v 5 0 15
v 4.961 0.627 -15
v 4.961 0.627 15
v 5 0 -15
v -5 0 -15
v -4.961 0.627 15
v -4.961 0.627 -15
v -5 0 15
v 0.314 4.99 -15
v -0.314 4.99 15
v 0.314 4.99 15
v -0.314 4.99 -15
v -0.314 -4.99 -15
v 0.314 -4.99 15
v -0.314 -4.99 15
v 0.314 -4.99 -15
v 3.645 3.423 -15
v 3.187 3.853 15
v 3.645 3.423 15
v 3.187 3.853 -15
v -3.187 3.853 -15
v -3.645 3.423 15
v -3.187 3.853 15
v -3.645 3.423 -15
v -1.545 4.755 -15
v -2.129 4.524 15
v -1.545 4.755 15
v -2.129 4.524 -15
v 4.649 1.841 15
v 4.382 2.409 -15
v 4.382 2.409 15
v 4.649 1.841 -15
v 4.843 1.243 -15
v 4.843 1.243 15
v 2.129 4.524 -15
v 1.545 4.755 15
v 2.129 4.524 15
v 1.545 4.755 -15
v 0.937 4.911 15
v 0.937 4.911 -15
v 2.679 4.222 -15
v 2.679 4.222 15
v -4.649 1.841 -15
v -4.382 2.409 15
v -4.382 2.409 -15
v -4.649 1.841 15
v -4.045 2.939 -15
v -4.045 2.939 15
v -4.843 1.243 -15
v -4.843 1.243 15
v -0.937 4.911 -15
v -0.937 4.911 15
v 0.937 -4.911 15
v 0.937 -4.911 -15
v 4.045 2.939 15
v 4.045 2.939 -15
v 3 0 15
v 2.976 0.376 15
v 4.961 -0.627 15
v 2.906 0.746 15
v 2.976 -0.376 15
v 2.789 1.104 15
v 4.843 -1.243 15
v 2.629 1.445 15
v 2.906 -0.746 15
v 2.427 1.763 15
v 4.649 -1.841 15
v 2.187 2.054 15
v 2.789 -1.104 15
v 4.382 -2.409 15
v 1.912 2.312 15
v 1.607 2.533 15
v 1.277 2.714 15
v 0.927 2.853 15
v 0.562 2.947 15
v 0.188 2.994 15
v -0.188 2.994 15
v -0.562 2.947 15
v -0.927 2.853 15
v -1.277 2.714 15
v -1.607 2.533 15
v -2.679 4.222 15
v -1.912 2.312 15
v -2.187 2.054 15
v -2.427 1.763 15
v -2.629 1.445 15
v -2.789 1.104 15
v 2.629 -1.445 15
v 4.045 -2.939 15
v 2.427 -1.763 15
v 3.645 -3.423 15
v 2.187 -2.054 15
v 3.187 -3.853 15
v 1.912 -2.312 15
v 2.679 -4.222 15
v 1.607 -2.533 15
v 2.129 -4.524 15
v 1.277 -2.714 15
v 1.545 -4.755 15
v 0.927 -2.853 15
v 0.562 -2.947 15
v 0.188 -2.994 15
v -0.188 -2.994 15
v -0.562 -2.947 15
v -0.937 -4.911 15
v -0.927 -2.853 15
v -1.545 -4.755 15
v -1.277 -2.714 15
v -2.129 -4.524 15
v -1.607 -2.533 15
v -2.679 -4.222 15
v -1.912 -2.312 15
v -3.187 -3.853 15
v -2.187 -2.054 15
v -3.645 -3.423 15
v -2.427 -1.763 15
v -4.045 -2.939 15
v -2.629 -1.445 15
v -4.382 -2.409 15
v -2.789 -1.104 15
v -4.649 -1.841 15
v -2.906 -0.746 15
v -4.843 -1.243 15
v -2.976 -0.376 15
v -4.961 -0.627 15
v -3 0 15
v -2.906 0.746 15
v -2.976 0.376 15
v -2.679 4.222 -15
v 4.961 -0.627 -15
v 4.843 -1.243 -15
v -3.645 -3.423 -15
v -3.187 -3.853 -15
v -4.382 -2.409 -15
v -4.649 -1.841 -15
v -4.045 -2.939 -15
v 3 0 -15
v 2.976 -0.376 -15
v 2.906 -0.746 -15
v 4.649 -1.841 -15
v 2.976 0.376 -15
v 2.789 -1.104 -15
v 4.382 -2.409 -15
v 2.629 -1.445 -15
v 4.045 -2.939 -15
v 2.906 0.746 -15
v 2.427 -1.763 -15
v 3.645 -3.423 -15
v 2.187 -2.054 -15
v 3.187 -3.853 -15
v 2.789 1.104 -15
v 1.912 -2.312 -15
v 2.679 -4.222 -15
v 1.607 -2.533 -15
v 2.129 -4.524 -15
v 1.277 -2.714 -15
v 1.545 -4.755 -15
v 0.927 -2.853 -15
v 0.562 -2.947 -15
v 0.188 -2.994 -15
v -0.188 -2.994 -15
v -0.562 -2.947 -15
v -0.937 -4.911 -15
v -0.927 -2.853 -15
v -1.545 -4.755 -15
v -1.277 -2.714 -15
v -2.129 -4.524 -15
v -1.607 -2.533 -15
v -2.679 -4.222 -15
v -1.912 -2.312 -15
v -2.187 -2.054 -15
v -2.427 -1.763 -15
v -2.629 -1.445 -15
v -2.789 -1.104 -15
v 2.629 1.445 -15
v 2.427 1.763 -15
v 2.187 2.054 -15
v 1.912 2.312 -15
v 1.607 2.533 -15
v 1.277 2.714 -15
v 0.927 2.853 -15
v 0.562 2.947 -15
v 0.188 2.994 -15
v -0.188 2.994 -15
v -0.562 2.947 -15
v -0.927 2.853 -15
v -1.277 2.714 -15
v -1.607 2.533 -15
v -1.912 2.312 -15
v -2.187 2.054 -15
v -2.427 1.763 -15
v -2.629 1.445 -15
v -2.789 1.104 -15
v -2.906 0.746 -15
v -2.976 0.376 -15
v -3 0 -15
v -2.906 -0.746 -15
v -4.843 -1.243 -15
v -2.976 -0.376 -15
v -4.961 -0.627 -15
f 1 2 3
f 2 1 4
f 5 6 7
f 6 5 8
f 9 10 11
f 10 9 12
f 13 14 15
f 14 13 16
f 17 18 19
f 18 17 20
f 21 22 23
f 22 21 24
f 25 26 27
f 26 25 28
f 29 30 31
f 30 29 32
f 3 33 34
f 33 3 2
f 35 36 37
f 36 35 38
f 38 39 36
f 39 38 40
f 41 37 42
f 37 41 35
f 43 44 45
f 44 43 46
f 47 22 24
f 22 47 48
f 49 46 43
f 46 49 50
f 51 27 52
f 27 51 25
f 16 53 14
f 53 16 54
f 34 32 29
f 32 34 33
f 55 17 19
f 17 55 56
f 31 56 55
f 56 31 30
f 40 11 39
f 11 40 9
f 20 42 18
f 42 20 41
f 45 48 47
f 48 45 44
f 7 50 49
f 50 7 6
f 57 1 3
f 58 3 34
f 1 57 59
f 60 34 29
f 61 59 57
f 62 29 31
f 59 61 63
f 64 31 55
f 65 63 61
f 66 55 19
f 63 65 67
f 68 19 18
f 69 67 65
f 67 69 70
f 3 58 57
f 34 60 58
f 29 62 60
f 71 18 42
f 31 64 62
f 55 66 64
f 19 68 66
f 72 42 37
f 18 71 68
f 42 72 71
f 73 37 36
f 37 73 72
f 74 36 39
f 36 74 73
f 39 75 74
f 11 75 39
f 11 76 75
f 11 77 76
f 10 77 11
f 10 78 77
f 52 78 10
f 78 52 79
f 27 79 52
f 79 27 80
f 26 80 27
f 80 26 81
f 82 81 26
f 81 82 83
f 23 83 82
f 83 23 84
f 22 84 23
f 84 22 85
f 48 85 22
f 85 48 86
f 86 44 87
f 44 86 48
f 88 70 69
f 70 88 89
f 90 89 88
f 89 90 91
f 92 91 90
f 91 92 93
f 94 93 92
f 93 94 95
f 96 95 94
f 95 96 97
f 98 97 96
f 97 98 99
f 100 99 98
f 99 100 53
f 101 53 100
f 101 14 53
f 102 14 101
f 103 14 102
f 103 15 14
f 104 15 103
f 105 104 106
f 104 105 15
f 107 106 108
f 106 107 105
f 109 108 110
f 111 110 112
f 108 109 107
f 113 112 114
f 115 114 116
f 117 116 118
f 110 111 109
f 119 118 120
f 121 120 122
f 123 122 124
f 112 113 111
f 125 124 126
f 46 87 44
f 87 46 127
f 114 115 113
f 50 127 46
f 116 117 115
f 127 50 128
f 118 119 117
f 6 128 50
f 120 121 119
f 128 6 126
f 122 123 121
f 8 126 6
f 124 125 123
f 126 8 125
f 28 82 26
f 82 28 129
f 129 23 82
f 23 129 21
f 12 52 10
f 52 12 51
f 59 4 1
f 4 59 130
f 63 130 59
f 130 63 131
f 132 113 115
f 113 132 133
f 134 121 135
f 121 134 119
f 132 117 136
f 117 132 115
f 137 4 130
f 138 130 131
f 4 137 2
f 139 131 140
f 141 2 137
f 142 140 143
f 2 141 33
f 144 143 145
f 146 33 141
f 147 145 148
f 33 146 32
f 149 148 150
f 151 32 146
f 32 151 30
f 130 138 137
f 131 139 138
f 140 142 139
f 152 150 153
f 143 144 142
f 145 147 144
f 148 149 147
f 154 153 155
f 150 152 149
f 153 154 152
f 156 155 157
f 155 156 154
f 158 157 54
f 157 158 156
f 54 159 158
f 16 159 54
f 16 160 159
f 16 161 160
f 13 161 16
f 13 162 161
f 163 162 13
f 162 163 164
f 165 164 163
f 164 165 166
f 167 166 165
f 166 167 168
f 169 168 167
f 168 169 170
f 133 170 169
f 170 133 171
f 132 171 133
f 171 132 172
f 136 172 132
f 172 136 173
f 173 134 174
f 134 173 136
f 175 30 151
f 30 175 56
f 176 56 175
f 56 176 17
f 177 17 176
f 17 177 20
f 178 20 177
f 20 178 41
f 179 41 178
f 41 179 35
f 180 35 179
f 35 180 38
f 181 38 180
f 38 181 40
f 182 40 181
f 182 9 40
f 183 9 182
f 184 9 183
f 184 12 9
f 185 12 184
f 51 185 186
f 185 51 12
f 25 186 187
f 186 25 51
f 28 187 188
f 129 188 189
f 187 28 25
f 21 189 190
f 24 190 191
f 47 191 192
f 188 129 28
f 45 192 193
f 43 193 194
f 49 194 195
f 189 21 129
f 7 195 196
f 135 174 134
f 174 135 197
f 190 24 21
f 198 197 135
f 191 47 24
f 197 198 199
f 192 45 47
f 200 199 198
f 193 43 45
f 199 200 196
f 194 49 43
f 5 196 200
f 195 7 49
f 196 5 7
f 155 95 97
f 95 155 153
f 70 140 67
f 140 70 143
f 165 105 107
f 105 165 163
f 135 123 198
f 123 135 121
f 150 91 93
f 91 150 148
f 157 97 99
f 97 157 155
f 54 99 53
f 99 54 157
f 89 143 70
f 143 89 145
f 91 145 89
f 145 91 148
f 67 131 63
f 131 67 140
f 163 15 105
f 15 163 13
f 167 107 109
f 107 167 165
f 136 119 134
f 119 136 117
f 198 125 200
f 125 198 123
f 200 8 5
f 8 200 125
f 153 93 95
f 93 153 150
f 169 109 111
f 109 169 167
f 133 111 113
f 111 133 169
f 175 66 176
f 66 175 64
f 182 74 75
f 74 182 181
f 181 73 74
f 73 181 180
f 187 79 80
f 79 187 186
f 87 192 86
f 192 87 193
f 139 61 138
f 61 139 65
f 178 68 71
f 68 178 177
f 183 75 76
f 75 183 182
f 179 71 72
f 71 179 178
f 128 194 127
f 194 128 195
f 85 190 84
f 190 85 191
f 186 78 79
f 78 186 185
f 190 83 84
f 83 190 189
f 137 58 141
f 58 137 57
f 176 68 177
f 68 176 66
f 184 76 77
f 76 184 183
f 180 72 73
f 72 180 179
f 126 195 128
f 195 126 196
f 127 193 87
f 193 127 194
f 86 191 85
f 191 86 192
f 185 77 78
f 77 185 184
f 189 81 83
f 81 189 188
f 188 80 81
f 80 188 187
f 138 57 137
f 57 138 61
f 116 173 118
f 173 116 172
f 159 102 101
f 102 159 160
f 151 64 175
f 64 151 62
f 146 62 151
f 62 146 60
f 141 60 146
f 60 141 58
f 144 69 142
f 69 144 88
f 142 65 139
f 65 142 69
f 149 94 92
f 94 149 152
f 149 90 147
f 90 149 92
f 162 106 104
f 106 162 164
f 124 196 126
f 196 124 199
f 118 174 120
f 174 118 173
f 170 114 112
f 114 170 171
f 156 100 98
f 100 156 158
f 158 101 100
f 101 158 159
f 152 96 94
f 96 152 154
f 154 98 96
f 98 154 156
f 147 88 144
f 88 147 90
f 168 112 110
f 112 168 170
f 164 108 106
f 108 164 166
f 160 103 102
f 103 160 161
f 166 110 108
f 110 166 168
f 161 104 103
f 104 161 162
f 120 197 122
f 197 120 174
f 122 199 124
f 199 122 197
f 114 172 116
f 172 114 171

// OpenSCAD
$fn = 50;


difference() {
	union() {
		translate(v = [0, 0, -15.0000000000]) {
			cylinder(h = 30, r = 5.0000000000);
		}
	}
	union() {
		translate(v = [0, 0, -100.0000000000]) {
			cylinder(h = 200, r = 3);
		}
	}
}
